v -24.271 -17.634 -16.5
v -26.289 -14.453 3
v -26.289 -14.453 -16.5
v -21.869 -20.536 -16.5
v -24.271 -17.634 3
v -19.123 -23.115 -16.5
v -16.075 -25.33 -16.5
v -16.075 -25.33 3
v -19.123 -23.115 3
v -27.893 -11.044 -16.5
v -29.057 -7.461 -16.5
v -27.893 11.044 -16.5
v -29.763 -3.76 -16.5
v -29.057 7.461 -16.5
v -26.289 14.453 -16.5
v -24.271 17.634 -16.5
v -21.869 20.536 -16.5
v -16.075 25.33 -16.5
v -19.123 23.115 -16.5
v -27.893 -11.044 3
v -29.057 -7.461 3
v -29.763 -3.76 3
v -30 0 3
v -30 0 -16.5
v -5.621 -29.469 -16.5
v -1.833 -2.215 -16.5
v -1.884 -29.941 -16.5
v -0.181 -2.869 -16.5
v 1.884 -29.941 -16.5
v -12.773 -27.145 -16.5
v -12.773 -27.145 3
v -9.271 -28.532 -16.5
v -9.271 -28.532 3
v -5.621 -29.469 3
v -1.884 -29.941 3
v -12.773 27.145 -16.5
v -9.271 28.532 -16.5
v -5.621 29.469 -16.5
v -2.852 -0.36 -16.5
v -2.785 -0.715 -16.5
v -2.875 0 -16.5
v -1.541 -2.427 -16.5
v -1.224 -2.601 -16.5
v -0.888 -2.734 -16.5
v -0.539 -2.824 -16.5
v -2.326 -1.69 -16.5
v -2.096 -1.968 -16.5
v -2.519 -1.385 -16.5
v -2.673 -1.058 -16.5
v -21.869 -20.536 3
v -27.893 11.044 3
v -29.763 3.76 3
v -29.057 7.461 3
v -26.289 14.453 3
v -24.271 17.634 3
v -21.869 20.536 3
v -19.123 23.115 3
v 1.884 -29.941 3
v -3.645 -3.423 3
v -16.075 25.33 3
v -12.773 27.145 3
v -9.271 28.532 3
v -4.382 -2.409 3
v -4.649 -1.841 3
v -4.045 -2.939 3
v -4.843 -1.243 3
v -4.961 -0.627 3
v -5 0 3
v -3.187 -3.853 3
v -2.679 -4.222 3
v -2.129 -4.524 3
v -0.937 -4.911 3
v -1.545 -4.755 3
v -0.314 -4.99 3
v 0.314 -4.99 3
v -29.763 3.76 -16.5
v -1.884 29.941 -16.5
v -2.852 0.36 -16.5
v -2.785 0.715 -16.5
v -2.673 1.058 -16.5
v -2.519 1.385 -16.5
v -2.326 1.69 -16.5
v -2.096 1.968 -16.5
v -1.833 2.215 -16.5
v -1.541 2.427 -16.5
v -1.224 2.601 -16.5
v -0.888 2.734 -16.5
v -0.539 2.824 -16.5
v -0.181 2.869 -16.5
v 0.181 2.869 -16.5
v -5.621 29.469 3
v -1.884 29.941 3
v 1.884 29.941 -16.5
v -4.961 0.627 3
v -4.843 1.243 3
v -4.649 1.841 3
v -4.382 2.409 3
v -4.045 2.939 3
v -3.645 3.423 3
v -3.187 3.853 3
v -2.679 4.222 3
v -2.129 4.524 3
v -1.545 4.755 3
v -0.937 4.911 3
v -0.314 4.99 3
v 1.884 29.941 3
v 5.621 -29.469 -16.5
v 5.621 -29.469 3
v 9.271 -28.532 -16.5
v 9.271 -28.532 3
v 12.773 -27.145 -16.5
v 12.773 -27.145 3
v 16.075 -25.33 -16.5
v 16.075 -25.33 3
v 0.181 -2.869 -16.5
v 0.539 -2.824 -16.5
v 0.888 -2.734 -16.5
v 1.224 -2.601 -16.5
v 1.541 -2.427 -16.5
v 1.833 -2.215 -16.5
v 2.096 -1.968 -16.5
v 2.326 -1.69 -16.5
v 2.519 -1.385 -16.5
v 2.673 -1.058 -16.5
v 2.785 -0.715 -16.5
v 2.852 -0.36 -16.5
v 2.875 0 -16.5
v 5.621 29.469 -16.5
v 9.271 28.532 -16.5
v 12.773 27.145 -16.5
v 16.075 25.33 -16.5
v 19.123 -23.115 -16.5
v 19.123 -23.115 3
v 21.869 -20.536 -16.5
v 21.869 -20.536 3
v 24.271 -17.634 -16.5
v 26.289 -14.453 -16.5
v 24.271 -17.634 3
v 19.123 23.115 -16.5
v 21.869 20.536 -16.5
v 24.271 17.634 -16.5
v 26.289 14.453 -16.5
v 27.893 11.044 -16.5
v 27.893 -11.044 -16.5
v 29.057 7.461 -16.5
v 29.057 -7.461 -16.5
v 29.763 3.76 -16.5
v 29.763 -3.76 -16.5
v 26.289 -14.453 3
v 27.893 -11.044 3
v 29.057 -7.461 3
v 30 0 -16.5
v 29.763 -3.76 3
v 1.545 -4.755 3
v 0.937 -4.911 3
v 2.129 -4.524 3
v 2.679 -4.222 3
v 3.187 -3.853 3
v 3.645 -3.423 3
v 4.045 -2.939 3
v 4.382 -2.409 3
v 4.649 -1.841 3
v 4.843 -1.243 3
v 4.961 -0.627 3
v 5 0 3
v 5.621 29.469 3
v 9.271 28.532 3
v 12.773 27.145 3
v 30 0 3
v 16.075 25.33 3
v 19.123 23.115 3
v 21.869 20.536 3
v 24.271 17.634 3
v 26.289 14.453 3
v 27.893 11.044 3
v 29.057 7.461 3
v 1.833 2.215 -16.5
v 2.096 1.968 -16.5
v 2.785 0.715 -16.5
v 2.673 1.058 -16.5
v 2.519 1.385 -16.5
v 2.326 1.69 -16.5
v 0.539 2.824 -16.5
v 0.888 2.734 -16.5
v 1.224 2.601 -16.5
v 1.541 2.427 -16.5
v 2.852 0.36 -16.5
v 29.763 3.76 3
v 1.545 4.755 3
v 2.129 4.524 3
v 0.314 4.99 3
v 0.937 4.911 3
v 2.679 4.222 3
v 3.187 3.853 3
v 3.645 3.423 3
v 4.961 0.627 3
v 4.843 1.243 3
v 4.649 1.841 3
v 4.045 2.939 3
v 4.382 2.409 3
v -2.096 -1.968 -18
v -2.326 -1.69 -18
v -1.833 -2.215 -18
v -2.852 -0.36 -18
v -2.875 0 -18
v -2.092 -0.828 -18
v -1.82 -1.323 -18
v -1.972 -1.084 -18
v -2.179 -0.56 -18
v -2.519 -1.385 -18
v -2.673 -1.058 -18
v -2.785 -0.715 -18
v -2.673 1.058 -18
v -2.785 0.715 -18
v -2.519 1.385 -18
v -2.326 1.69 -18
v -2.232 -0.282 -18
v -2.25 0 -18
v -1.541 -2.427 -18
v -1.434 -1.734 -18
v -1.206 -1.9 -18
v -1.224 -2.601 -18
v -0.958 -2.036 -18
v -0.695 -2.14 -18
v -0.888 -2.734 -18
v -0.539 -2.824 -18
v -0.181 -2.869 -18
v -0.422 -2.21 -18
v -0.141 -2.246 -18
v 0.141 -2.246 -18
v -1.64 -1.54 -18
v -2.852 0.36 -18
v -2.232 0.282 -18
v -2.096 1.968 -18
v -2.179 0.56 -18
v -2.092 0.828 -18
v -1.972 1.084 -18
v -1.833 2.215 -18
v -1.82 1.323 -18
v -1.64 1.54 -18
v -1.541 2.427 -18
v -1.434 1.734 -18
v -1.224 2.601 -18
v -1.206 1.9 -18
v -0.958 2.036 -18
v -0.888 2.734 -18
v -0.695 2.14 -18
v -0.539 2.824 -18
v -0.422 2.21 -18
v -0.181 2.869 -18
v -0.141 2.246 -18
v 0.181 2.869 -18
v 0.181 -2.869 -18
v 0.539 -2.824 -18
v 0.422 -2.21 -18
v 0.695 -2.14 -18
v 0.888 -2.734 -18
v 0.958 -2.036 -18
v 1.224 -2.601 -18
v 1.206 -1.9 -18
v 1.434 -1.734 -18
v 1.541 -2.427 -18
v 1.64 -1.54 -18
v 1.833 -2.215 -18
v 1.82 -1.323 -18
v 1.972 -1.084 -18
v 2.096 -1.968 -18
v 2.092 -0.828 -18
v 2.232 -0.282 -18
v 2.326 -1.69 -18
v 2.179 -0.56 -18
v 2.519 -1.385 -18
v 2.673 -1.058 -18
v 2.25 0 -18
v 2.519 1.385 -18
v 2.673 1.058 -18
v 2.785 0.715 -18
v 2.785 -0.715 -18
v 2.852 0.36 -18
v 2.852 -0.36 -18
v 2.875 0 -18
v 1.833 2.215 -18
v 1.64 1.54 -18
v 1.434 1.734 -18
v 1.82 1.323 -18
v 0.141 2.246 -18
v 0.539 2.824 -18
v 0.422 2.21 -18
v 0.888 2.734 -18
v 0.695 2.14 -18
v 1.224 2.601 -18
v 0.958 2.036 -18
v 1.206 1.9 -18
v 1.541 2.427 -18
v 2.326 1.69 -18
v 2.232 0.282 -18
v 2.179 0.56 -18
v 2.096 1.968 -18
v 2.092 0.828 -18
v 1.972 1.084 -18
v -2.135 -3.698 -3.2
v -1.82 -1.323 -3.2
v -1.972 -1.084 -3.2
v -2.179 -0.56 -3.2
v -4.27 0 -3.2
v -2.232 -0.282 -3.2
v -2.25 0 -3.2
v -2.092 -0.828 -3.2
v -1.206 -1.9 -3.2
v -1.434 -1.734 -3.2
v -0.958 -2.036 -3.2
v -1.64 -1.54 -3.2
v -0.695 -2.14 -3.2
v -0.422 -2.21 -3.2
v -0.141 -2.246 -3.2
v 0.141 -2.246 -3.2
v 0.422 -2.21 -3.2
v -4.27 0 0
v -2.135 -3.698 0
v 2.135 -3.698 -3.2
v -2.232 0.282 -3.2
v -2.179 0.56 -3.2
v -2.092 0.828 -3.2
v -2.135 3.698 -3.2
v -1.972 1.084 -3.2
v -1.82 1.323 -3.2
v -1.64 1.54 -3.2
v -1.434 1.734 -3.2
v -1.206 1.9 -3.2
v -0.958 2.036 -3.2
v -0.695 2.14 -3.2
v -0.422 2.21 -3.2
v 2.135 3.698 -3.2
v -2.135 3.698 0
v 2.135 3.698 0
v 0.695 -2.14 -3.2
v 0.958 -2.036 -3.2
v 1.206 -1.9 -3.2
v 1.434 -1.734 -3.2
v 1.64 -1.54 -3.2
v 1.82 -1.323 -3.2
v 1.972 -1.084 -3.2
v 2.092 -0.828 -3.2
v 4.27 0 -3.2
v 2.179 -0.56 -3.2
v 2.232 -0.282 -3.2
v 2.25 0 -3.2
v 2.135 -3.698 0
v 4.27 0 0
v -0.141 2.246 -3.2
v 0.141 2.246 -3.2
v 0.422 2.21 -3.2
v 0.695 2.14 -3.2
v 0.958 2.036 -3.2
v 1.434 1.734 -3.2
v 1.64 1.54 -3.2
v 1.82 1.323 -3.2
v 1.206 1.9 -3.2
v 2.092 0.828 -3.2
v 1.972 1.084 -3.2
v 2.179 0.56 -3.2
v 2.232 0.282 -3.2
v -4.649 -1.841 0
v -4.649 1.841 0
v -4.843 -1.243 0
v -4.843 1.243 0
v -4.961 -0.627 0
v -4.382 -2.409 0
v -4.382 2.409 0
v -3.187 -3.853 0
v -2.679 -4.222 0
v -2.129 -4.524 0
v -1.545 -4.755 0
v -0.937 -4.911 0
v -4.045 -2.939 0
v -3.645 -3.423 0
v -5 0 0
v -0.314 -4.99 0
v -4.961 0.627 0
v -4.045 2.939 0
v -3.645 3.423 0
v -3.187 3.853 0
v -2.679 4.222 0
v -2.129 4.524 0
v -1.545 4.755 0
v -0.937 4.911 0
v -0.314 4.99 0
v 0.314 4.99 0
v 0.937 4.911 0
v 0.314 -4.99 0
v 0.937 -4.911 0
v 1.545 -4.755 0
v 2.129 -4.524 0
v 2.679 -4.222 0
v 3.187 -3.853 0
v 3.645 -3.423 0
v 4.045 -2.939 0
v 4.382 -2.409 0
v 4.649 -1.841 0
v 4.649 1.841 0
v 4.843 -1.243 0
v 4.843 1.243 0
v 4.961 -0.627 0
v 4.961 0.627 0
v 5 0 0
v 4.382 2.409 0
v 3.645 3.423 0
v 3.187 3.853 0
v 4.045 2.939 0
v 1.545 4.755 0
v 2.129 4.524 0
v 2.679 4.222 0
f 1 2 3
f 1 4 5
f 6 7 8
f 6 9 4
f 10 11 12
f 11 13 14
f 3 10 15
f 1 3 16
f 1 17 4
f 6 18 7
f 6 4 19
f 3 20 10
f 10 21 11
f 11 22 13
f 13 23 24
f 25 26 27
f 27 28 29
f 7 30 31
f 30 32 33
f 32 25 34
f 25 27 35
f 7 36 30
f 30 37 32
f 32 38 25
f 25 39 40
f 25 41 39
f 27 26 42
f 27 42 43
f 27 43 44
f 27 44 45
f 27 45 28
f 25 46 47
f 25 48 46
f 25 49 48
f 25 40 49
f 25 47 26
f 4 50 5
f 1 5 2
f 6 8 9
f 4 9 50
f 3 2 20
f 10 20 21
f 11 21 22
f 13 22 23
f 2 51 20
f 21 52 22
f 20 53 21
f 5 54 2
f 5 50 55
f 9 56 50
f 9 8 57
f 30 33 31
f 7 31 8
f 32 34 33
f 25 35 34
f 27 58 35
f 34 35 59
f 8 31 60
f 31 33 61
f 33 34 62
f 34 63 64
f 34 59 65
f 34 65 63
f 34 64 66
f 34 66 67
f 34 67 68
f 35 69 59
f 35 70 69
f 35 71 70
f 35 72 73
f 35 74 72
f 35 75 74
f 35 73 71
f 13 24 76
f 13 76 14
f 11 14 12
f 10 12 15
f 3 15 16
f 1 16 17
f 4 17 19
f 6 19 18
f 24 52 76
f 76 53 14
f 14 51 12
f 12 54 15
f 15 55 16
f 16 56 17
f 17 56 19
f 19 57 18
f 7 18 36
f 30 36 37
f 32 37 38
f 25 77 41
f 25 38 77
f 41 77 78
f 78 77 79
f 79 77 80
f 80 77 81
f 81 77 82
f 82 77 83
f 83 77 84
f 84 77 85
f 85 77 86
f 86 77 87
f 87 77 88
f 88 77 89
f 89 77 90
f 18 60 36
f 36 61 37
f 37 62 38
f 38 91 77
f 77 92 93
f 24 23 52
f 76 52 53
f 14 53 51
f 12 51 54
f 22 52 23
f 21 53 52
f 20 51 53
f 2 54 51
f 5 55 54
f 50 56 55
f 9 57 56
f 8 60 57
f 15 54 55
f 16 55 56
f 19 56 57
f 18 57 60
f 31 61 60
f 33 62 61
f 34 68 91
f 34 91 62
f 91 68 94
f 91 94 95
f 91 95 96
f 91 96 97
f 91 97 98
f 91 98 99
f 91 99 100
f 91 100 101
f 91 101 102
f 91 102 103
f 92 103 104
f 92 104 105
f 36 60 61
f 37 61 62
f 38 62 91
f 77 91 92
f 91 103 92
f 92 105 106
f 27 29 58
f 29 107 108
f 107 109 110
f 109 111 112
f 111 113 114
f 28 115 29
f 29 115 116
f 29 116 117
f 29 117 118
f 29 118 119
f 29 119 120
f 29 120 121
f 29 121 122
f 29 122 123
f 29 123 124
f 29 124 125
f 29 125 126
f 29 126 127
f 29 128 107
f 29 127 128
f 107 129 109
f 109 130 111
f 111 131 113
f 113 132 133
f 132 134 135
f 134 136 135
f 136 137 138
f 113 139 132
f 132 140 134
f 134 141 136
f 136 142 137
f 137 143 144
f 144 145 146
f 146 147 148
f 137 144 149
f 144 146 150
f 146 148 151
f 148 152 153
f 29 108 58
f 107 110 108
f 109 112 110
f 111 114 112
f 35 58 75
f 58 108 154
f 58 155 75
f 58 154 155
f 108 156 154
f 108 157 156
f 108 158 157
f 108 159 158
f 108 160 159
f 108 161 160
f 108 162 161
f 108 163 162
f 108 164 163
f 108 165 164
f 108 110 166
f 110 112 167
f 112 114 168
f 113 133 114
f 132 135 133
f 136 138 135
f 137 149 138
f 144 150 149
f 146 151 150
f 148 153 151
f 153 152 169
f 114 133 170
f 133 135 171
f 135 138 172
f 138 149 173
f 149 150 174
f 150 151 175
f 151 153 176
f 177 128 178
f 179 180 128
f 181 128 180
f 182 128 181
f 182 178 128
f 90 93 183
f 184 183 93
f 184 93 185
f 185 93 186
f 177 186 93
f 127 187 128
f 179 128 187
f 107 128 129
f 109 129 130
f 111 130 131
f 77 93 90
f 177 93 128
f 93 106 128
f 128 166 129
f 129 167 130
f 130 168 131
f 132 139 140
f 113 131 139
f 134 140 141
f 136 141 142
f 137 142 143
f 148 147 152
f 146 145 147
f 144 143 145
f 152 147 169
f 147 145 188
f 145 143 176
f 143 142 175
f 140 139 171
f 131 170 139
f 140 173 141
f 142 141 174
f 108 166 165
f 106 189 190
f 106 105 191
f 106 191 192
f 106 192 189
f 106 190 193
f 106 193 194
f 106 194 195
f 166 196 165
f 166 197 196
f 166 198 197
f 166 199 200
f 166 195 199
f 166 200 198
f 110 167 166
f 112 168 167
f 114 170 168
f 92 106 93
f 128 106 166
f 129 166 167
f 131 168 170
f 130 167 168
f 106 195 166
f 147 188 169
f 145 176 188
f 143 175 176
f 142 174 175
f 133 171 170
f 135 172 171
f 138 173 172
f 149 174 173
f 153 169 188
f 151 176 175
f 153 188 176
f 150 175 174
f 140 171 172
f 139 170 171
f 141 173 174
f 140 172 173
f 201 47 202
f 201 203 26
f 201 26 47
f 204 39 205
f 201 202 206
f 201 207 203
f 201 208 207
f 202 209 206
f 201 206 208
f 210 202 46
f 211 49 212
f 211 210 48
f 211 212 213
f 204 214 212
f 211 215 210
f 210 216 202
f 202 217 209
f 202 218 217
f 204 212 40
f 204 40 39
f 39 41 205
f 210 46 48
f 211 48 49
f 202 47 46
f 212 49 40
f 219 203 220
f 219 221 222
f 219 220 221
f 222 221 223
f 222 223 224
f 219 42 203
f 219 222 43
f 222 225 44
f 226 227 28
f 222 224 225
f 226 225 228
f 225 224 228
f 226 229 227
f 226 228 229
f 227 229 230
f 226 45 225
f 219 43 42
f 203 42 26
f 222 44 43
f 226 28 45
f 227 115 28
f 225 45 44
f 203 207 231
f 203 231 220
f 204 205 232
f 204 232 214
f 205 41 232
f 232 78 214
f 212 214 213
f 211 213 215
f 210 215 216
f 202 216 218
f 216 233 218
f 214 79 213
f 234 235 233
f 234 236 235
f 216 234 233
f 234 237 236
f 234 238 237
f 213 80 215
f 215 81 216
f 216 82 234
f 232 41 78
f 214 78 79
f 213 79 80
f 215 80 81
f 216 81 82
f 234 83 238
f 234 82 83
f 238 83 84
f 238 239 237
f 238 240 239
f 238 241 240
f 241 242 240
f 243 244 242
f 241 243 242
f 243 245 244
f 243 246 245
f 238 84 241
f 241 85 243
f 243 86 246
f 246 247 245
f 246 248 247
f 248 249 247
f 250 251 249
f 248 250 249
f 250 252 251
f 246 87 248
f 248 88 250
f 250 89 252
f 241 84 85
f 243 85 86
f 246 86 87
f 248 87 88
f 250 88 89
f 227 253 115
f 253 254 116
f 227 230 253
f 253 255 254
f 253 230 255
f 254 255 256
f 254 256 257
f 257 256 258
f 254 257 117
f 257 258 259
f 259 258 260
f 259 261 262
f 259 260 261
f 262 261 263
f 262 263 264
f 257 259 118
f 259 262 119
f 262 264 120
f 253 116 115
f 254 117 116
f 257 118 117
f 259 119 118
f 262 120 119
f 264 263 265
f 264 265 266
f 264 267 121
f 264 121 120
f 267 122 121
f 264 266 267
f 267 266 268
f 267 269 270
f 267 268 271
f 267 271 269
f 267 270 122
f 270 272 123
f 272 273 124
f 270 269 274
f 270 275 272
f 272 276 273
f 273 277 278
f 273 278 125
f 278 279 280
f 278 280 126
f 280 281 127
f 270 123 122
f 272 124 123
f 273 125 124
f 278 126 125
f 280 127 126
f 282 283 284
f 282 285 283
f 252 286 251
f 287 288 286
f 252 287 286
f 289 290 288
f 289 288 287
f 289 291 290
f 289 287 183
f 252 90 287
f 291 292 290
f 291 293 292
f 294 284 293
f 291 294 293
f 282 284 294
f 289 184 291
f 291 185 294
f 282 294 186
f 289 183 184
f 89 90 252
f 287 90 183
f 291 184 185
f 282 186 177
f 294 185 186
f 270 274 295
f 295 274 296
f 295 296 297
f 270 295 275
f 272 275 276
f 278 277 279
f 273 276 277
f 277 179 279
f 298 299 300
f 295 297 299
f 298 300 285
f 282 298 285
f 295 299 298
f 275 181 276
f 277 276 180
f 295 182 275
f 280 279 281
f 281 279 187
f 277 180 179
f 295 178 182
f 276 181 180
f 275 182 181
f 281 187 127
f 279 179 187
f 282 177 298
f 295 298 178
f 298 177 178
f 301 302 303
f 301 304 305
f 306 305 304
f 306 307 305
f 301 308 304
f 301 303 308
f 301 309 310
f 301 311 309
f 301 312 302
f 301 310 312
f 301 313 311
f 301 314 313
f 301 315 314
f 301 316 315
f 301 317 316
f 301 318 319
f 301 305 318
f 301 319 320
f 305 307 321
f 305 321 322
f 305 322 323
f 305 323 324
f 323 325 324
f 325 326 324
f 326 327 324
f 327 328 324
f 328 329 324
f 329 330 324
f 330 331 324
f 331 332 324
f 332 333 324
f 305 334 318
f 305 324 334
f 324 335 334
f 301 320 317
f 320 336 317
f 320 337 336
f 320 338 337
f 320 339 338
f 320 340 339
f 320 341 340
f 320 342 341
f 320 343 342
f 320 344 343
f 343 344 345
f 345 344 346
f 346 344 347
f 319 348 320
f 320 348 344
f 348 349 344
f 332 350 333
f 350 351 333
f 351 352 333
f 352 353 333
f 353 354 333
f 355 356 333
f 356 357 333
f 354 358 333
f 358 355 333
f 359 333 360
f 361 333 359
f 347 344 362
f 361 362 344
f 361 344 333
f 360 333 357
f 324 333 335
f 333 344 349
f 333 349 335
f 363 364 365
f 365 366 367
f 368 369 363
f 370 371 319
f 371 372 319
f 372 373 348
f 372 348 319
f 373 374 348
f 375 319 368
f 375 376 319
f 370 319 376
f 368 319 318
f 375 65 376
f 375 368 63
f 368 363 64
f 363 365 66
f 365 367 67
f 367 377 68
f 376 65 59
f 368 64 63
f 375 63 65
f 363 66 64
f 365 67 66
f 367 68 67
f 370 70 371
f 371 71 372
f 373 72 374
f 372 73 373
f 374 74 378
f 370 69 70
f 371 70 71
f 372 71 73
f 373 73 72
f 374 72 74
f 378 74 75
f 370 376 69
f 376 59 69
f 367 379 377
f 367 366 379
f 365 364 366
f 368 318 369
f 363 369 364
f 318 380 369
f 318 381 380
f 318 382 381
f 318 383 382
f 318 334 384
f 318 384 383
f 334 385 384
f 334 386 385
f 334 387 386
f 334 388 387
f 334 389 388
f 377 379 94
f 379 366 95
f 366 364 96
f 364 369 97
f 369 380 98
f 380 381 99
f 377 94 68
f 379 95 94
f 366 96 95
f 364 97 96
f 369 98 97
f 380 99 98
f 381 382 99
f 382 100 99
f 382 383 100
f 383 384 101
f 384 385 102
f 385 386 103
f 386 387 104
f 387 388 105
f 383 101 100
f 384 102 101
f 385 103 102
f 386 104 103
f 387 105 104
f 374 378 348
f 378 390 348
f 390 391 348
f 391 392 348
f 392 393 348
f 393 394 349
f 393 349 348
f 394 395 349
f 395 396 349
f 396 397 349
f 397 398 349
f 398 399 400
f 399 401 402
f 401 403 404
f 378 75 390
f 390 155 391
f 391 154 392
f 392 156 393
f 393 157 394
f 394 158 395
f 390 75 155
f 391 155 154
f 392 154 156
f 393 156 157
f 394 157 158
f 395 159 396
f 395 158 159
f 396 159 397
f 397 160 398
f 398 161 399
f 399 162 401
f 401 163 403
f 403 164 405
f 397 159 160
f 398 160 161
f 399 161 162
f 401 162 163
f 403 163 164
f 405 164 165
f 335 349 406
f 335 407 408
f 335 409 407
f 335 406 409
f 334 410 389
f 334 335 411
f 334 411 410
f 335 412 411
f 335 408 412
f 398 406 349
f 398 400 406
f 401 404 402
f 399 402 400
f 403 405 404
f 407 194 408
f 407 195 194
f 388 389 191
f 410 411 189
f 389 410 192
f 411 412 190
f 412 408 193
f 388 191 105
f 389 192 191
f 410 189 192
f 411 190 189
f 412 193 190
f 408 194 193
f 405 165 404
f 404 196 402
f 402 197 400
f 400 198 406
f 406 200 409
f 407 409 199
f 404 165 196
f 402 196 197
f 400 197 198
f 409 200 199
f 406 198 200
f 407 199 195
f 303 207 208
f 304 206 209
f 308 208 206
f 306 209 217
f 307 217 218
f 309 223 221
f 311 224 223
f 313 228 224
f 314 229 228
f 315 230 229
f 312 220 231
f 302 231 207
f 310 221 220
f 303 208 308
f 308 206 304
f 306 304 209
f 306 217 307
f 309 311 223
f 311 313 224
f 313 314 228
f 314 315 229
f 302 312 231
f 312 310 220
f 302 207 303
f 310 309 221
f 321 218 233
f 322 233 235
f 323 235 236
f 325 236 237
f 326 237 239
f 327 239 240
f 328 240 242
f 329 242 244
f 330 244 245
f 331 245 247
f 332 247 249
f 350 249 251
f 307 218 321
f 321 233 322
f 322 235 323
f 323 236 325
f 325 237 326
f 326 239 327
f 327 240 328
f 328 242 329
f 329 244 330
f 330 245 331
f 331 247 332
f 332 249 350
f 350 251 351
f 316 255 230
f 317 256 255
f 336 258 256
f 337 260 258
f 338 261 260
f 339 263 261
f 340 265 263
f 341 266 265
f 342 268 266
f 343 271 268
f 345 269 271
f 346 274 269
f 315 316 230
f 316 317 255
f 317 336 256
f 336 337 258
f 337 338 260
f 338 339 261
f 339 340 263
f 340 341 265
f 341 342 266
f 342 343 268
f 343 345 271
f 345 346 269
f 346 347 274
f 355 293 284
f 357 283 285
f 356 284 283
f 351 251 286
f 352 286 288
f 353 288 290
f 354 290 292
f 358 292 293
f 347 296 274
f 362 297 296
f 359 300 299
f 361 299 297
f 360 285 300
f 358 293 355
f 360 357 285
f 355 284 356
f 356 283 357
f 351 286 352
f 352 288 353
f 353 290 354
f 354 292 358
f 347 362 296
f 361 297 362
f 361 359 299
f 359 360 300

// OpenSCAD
$fn = 50;

difference() {
	union() {
		translate(v = [0, 0, -16.5]) {
			cylinder(h = 19.5, r = 30.0);
		}
		#translate(v = [0, 0, -18.0]) {
			cylinder(h = 18, r = 2.875);
		}
	}
	union() {
		translate(v = [0, 0, 0]) {
			rotate(a = [0, 0, 0]) {
				difference() {
					union() {
						translate(v = [0, 0, -3.2]) {
							linear_extrude(height = 3.2) {
								polygon(points = [[4.2698, 0.0], [2.1349000000000005, 3.697755269078796], [-2.134899999999999, 3.6977552690787965], [-4.2698, 5.228996902999369e-16], [-2.134900000000002, -3.6977552690787956], [2.1348999999999974, -3.697755269078798]]);
							}
						}
					}
					union();
				}
			}
		}
		#cylinder(h = 3, r = 5.0);
		#translate(v = [0, 0, -100.0]) {
			cylinder(h = 200, r = 2.25);
		}
	}
}
